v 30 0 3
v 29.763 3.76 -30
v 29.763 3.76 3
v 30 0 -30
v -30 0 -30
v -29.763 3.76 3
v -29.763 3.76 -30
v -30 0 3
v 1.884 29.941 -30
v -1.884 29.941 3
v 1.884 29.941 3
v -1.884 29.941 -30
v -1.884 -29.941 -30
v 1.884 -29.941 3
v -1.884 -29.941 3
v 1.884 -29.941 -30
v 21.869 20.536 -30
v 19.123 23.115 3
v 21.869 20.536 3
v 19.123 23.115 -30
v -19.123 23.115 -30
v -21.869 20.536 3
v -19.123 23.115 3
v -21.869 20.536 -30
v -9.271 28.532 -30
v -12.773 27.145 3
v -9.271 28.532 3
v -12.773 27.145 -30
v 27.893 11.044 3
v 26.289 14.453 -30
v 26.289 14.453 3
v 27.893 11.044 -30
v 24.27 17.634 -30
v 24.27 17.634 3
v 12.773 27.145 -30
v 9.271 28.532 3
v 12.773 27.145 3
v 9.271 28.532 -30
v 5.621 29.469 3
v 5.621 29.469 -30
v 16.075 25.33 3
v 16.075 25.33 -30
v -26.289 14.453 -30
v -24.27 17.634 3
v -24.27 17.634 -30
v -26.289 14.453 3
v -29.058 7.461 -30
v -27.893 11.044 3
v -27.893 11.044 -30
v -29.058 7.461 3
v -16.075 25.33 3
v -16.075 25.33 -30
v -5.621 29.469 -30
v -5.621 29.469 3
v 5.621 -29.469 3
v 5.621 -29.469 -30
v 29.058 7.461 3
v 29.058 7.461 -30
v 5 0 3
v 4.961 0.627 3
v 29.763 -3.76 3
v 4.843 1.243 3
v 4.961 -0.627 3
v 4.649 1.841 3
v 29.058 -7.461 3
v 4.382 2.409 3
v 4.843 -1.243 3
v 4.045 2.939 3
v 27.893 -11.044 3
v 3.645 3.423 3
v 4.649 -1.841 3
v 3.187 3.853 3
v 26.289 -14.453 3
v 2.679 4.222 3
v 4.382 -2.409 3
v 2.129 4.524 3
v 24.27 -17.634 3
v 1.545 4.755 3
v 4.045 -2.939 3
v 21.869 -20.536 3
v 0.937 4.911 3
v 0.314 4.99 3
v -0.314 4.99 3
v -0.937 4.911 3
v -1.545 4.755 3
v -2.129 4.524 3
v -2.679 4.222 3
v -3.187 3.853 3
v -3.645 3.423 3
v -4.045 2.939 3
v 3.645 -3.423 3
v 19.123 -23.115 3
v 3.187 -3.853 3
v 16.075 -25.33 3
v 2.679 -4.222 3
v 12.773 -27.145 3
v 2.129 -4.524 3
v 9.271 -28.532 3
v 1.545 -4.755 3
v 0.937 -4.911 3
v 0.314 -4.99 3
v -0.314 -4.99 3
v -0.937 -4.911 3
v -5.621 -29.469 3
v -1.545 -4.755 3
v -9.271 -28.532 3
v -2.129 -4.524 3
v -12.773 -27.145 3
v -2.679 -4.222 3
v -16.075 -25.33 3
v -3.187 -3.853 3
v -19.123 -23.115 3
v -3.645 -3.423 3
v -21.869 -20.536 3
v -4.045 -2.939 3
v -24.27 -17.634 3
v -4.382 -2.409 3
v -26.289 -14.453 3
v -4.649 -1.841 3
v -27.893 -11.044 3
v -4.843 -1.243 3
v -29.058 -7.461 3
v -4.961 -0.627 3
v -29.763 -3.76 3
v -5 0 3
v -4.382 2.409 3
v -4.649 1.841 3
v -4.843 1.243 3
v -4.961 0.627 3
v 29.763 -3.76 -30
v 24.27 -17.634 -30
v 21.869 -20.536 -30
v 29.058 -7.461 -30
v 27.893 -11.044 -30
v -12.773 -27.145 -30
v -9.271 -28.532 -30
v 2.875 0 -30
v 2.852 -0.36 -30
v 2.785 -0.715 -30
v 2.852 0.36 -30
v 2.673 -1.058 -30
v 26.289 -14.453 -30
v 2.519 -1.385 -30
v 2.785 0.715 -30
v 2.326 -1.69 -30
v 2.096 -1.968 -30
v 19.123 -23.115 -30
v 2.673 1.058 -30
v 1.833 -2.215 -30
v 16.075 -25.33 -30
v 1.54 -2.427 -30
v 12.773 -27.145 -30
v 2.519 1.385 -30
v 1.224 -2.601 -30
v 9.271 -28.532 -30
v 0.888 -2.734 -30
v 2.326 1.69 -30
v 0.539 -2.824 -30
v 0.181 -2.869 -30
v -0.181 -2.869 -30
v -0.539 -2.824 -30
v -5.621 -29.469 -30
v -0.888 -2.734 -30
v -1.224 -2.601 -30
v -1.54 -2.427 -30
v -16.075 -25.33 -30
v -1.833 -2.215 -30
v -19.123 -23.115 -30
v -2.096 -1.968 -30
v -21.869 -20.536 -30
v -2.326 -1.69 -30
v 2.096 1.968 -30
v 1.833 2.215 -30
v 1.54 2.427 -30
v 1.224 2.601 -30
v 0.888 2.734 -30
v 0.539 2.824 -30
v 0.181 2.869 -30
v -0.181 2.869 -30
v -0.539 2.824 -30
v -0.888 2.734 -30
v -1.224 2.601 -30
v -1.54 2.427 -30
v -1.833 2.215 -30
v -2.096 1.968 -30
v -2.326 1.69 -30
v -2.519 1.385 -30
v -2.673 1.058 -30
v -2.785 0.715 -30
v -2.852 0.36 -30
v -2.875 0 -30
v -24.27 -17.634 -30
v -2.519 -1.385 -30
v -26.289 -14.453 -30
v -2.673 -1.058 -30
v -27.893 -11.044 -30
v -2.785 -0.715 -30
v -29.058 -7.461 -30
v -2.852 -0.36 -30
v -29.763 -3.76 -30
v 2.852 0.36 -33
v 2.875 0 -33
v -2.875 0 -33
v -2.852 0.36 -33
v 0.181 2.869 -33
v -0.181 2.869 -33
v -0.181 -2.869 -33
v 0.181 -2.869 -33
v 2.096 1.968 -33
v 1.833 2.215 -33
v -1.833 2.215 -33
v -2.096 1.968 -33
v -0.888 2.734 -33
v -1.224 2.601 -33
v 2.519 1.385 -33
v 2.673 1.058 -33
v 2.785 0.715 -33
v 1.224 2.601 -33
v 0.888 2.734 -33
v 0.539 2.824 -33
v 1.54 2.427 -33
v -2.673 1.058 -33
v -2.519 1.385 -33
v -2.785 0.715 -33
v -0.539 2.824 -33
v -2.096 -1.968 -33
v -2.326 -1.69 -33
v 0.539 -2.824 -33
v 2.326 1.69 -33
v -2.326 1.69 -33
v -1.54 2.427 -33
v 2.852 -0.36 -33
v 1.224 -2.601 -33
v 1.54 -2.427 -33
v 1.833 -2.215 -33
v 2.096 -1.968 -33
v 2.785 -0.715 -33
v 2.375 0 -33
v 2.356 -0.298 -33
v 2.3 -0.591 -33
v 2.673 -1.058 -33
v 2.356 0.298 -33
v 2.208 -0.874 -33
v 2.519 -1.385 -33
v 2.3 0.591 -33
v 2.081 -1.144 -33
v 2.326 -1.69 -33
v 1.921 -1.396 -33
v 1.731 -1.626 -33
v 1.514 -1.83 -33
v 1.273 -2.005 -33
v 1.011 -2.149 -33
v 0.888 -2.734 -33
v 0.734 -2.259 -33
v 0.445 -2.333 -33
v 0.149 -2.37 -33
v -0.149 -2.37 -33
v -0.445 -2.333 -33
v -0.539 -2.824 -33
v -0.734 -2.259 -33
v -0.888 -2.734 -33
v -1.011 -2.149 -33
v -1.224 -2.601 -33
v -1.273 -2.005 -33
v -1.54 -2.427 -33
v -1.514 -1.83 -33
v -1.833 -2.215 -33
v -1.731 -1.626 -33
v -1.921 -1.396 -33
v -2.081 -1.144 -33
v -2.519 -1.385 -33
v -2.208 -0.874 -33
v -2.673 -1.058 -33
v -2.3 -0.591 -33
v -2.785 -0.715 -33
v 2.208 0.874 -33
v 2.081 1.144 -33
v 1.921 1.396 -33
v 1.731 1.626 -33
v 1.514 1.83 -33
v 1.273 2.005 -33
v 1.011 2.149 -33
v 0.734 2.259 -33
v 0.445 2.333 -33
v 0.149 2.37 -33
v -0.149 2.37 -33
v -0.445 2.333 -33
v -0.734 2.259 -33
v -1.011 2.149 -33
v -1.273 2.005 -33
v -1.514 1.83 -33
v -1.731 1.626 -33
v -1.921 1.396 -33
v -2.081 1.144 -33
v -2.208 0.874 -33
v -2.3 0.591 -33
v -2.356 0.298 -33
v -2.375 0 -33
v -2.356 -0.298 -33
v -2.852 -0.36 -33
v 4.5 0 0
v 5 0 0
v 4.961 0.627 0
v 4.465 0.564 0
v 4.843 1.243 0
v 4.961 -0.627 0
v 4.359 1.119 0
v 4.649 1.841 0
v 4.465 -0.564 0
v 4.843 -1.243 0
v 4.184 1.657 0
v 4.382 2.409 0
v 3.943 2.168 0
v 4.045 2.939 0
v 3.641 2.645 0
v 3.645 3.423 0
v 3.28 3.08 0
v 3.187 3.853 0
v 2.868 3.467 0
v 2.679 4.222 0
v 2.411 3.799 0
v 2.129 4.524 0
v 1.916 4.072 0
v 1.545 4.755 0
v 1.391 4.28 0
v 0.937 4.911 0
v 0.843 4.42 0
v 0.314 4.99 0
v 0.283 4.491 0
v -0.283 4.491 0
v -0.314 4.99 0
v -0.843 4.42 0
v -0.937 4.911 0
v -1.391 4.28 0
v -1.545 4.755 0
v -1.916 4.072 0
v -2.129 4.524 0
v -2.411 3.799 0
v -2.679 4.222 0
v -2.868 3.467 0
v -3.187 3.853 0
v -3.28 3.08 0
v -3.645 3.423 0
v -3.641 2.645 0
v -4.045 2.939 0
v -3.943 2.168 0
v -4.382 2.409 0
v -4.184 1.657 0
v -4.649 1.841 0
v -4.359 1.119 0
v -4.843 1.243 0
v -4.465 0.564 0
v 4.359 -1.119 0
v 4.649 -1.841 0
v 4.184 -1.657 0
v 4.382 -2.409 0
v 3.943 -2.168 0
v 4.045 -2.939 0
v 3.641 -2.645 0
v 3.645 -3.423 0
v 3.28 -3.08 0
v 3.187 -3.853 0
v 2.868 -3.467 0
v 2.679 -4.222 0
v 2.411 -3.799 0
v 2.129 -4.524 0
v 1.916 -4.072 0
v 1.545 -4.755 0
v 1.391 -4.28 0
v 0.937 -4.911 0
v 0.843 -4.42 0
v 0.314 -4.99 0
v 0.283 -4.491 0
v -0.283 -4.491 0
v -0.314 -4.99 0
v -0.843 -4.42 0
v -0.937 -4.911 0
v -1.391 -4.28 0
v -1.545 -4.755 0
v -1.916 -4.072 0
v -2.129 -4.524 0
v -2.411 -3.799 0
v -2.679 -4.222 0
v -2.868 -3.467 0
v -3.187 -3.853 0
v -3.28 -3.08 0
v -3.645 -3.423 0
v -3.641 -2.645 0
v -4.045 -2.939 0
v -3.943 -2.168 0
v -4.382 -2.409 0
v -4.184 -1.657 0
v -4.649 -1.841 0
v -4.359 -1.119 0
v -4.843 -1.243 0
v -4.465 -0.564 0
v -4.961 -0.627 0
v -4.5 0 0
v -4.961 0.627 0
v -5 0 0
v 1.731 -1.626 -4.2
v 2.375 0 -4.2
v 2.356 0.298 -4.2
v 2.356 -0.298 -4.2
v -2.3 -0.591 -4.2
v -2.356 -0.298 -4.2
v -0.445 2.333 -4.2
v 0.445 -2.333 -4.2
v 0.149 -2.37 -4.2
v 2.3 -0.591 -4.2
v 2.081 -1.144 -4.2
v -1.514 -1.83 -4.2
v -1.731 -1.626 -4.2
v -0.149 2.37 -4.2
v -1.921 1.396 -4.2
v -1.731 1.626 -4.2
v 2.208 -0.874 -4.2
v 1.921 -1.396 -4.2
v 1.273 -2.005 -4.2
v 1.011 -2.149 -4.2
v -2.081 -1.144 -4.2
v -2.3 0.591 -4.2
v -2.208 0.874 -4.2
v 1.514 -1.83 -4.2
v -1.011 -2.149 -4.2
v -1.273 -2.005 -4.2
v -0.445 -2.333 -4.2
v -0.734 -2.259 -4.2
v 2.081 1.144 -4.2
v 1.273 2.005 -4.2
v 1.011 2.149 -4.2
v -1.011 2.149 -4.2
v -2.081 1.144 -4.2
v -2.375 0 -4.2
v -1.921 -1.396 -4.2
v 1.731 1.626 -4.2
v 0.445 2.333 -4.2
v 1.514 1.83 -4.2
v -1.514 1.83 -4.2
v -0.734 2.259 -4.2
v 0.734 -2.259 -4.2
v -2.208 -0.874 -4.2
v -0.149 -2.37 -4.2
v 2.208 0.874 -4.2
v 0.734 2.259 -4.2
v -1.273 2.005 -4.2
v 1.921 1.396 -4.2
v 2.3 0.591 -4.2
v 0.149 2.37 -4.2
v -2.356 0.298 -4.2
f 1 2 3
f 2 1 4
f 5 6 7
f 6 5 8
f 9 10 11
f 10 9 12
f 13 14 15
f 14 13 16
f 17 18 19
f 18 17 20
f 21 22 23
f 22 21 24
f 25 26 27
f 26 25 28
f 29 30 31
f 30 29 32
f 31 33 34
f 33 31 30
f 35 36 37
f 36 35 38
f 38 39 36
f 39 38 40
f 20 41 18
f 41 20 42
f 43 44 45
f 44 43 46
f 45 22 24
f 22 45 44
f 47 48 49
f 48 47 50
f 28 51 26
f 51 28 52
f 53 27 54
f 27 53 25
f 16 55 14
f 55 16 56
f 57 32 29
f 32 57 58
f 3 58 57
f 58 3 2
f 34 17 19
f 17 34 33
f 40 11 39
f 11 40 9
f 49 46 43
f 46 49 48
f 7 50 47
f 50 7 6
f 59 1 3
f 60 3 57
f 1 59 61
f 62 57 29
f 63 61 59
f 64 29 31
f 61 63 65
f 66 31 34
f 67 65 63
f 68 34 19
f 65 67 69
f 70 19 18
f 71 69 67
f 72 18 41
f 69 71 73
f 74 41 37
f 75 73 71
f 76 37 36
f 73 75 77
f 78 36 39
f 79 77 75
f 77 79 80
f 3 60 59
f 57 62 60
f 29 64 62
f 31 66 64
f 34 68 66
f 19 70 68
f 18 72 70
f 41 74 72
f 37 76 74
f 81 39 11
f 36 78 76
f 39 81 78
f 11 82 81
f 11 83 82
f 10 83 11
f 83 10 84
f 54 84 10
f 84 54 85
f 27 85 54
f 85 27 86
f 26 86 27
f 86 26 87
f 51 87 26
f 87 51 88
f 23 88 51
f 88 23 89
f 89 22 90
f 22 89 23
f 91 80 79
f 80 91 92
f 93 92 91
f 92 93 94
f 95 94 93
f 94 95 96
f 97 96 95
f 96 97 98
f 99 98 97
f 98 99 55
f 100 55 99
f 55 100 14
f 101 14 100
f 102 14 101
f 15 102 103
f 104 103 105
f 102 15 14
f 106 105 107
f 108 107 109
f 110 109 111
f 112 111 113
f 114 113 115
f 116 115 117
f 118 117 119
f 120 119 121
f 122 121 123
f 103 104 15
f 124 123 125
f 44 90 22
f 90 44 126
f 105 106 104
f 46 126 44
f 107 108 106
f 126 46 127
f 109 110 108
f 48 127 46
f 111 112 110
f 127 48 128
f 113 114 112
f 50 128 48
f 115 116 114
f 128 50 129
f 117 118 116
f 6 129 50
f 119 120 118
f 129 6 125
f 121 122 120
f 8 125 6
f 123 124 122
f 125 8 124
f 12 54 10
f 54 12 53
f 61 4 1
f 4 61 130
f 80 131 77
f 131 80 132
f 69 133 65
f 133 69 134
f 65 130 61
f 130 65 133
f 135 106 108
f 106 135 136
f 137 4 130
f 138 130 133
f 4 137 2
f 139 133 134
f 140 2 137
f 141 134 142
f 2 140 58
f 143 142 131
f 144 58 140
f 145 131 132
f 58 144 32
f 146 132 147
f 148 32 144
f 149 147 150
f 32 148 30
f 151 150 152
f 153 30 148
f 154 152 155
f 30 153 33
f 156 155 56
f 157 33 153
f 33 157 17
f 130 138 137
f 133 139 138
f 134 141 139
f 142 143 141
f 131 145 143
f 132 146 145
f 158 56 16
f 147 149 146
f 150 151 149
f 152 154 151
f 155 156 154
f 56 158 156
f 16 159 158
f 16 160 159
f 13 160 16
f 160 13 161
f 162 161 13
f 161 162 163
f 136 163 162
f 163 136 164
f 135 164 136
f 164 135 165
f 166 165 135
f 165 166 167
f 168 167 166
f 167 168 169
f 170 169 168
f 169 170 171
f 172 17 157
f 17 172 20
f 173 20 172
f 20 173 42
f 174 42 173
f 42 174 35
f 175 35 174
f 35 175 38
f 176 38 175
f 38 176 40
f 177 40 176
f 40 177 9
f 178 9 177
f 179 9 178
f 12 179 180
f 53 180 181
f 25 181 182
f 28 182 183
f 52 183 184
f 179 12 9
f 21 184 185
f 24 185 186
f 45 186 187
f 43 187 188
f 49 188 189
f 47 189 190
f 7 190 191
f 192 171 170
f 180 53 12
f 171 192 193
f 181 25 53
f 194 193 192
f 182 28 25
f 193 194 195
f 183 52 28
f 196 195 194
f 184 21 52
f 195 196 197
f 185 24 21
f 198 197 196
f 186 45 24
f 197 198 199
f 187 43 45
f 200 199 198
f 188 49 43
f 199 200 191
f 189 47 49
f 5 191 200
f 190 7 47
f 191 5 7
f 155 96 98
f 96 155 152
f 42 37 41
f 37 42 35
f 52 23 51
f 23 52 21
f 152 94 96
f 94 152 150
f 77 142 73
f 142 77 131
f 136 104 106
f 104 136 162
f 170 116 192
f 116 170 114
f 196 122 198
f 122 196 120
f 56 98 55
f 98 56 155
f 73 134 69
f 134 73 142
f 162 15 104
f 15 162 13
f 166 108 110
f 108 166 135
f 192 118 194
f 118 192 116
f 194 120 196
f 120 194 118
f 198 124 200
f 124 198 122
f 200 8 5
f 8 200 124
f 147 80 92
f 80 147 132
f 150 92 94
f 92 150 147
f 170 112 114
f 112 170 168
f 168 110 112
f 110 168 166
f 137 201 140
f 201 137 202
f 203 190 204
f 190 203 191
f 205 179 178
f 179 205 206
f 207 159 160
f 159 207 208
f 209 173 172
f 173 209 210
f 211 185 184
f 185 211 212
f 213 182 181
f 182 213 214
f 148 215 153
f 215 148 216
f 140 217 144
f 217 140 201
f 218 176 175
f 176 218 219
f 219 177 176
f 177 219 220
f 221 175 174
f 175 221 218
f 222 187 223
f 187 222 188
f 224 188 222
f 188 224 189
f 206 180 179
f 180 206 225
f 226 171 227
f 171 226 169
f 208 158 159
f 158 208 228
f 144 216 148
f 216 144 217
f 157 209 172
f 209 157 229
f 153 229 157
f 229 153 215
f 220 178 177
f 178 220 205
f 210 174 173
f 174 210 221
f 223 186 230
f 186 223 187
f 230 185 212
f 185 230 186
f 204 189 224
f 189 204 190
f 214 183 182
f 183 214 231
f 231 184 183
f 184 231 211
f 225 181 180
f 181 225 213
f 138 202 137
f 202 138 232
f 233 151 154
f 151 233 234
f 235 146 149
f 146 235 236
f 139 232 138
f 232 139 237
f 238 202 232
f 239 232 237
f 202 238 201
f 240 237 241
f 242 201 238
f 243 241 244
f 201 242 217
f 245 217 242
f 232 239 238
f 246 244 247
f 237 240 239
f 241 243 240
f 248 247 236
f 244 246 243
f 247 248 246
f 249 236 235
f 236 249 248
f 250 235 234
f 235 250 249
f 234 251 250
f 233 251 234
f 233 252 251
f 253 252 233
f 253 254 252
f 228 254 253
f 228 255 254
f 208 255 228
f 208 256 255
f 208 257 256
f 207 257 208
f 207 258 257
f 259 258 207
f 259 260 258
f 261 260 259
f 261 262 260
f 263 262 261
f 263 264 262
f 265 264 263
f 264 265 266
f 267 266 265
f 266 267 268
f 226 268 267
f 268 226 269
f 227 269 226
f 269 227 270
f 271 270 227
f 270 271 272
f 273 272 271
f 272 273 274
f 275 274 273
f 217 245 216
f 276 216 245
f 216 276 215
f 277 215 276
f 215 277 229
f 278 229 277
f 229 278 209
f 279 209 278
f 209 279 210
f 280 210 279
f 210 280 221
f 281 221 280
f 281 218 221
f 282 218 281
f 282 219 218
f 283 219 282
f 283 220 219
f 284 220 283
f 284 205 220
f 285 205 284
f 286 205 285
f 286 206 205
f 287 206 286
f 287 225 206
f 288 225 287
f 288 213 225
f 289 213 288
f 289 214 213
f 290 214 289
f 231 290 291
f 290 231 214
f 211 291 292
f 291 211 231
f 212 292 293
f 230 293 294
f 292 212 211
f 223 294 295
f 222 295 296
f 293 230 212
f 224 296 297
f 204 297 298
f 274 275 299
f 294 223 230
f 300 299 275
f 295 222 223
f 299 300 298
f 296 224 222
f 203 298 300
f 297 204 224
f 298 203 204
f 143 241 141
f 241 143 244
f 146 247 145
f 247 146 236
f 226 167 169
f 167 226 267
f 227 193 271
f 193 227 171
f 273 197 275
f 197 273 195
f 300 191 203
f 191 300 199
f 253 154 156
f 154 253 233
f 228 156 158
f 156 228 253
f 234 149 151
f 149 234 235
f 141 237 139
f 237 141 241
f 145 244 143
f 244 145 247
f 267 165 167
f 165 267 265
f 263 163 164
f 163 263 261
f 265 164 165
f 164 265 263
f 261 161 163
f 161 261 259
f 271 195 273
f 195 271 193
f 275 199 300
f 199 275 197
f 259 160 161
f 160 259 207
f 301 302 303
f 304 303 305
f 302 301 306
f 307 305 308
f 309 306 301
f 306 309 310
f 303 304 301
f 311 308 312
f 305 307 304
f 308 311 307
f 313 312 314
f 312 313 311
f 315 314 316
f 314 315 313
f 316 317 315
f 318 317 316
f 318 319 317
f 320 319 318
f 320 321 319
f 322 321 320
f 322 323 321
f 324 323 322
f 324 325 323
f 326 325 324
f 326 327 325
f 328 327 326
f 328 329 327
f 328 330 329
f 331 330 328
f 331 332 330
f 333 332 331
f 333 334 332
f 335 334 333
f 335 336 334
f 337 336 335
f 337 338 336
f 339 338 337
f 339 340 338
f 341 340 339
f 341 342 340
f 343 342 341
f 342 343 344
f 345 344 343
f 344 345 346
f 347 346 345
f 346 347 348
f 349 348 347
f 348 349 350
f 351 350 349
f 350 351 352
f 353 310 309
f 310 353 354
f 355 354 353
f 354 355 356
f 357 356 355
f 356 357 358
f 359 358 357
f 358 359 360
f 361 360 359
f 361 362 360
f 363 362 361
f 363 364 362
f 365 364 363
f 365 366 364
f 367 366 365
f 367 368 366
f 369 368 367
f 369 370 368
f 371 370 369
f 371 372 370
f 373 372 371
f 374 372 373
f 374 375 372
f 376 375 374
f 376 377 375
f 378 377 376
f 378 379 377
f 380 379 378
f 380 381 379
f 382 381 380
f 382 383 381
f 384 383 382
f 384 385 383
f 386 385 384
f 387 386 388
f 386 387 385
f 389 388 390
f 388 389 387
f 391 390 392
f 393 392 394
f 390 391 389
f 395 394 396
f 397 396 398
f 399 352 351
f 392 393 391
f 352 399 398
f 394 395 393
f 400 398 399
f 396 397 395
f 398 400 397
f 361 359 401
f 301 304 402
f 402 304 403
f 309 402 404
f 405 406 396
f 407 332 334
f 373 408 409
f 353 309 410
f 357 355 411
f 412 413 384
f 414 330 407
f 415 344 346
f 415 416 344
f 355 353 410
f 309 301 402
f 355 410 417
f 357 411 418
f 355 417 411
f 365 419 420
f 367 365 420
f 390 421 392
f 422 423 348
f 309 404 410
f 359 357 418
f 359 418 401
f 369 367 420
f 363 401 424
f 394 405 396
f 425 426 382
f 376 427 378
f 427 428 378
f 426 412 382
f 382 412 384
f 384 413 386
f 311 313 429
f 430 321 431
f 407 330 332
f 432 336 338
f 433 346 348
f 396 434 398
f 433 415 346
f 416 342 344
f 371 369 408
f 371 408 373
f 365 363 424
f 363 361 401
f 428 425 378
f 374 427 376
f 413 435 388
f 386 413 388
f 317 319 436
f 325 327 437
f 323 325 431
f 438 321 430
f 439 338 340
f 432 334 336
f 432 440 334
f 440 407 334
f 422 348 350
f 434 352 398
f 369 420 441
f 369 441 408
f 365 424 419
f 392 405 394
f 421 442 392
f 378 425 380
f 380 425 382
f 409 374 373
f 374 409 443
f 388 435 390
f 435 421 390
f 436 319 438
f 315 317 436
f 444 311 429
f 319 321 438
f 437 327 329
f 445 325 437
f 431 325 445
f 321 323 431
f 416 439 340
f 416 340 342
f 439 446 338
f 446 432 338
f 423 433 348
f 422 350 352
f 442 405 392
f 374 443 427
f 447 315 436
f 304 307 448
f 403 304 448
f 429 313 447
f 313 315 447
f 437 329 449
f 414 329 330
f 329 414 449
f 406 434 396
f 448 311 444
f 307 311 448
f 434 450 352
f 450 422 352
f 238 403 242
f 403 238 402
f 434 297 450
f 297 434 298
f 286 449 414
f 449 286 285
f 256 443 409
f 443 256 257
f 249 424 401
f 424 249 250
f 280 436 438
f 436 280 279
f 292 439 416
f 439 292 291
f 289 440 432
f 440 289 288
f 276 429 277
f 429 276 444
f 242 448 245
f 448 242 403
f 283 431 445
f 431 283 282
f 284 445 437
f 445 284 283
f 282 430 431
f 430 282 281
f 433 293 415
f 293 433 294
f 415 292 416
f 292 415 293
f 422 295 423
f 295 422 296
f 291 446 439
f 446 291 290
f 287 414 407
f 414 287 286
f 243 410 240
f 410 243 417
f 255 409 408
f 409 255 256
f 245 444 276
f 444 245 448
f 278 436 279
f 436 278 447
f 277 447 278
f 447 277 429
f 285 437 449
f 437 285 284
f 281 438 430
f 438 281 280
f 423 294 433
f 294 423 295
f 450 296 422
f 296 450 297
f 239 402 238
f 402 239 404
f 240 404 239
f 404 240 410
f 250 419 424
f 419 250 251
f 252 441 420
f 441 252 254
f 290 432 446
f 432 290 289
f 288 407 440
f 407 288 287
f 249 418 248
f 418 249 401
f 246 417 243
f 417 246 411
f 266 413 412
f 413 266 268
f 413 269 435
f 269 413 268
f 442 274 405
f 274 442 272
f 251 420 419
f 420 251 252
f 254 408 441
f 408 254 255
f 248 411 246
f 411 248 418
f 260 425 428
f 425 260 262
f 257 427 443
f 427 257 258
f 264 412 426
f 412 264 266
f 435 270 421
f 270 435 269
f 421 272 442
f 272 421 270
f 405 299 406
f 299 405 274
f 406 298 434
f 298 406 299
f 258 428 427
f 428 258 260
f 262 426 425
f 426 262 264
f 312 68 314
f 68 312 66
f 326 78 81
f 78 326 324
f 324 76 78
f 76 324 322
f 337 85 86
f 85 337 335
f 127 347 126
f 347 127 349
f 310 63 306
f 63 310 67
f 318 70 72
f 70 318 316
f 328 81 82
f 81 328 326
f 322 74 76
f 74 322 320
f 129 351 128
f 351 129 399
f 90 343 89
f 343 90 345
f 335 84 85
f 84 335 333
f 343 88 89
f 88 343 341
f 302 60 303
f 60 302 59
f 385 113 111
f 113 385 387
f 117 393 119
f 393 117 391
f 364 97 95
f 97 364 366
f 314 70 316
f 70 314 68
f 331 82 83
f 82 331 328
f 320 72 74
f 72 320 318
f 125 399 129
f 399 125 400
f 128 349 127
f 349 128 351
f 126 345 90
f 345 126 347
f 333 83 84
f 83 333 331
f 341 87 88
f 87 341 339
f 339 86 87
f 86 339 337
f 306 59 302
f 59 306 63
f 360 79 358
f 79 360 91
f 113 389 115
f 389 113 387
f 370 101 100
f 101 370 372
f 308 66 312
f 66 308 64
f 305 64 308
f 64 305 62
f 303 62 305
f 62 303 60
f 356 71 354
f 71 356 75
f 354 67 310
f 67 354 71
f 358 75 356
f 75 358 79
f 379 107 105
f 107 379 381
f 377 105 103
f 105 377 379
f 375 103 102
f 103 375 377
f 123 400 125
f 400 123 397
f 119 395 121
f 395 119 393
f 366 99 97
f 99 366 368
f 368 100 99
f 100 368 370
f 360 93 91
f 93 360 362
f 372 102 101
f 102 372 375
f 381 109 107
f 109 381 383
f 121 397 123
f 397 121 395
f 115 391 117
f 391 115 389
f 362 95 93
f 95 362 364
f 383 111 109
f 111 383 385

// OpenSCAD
$fn = 50;

difference() {
	union() {
		translate(v = [0, 0, -30.0]) {
			cylinder(h = 33, r = 30.0);
		}
		#translate(v = [0, 0, -33.0]) {
			cylinder(h = 33, r = 2.875);
		}
	}
	union() {
		translate(v = [0, 0, 0]) {
			rotate(a = [0, 0, 0]) {
				difference() {
					union() {
						translate(v = [0, 0, -33.0]) {
							cylinder(h = 33, r = 2.25);
						}
						translate(v = [0, 0, -4.2]) {
							cylinder(h = 4.2, r1 = 2.375, r2 = 4.5);
						}
						translate(v = [0, 0, -33.0]) {
							cylinder(h = 33, r = 2.375);
						}
						translate(v = [0, 0, -33.0]) {
							cylinder(h = 33, r = 2.25);
						}
					}
					union();
				}
			}
		}
		#cylinder(h = 3, r = 5.0);
	}
}
